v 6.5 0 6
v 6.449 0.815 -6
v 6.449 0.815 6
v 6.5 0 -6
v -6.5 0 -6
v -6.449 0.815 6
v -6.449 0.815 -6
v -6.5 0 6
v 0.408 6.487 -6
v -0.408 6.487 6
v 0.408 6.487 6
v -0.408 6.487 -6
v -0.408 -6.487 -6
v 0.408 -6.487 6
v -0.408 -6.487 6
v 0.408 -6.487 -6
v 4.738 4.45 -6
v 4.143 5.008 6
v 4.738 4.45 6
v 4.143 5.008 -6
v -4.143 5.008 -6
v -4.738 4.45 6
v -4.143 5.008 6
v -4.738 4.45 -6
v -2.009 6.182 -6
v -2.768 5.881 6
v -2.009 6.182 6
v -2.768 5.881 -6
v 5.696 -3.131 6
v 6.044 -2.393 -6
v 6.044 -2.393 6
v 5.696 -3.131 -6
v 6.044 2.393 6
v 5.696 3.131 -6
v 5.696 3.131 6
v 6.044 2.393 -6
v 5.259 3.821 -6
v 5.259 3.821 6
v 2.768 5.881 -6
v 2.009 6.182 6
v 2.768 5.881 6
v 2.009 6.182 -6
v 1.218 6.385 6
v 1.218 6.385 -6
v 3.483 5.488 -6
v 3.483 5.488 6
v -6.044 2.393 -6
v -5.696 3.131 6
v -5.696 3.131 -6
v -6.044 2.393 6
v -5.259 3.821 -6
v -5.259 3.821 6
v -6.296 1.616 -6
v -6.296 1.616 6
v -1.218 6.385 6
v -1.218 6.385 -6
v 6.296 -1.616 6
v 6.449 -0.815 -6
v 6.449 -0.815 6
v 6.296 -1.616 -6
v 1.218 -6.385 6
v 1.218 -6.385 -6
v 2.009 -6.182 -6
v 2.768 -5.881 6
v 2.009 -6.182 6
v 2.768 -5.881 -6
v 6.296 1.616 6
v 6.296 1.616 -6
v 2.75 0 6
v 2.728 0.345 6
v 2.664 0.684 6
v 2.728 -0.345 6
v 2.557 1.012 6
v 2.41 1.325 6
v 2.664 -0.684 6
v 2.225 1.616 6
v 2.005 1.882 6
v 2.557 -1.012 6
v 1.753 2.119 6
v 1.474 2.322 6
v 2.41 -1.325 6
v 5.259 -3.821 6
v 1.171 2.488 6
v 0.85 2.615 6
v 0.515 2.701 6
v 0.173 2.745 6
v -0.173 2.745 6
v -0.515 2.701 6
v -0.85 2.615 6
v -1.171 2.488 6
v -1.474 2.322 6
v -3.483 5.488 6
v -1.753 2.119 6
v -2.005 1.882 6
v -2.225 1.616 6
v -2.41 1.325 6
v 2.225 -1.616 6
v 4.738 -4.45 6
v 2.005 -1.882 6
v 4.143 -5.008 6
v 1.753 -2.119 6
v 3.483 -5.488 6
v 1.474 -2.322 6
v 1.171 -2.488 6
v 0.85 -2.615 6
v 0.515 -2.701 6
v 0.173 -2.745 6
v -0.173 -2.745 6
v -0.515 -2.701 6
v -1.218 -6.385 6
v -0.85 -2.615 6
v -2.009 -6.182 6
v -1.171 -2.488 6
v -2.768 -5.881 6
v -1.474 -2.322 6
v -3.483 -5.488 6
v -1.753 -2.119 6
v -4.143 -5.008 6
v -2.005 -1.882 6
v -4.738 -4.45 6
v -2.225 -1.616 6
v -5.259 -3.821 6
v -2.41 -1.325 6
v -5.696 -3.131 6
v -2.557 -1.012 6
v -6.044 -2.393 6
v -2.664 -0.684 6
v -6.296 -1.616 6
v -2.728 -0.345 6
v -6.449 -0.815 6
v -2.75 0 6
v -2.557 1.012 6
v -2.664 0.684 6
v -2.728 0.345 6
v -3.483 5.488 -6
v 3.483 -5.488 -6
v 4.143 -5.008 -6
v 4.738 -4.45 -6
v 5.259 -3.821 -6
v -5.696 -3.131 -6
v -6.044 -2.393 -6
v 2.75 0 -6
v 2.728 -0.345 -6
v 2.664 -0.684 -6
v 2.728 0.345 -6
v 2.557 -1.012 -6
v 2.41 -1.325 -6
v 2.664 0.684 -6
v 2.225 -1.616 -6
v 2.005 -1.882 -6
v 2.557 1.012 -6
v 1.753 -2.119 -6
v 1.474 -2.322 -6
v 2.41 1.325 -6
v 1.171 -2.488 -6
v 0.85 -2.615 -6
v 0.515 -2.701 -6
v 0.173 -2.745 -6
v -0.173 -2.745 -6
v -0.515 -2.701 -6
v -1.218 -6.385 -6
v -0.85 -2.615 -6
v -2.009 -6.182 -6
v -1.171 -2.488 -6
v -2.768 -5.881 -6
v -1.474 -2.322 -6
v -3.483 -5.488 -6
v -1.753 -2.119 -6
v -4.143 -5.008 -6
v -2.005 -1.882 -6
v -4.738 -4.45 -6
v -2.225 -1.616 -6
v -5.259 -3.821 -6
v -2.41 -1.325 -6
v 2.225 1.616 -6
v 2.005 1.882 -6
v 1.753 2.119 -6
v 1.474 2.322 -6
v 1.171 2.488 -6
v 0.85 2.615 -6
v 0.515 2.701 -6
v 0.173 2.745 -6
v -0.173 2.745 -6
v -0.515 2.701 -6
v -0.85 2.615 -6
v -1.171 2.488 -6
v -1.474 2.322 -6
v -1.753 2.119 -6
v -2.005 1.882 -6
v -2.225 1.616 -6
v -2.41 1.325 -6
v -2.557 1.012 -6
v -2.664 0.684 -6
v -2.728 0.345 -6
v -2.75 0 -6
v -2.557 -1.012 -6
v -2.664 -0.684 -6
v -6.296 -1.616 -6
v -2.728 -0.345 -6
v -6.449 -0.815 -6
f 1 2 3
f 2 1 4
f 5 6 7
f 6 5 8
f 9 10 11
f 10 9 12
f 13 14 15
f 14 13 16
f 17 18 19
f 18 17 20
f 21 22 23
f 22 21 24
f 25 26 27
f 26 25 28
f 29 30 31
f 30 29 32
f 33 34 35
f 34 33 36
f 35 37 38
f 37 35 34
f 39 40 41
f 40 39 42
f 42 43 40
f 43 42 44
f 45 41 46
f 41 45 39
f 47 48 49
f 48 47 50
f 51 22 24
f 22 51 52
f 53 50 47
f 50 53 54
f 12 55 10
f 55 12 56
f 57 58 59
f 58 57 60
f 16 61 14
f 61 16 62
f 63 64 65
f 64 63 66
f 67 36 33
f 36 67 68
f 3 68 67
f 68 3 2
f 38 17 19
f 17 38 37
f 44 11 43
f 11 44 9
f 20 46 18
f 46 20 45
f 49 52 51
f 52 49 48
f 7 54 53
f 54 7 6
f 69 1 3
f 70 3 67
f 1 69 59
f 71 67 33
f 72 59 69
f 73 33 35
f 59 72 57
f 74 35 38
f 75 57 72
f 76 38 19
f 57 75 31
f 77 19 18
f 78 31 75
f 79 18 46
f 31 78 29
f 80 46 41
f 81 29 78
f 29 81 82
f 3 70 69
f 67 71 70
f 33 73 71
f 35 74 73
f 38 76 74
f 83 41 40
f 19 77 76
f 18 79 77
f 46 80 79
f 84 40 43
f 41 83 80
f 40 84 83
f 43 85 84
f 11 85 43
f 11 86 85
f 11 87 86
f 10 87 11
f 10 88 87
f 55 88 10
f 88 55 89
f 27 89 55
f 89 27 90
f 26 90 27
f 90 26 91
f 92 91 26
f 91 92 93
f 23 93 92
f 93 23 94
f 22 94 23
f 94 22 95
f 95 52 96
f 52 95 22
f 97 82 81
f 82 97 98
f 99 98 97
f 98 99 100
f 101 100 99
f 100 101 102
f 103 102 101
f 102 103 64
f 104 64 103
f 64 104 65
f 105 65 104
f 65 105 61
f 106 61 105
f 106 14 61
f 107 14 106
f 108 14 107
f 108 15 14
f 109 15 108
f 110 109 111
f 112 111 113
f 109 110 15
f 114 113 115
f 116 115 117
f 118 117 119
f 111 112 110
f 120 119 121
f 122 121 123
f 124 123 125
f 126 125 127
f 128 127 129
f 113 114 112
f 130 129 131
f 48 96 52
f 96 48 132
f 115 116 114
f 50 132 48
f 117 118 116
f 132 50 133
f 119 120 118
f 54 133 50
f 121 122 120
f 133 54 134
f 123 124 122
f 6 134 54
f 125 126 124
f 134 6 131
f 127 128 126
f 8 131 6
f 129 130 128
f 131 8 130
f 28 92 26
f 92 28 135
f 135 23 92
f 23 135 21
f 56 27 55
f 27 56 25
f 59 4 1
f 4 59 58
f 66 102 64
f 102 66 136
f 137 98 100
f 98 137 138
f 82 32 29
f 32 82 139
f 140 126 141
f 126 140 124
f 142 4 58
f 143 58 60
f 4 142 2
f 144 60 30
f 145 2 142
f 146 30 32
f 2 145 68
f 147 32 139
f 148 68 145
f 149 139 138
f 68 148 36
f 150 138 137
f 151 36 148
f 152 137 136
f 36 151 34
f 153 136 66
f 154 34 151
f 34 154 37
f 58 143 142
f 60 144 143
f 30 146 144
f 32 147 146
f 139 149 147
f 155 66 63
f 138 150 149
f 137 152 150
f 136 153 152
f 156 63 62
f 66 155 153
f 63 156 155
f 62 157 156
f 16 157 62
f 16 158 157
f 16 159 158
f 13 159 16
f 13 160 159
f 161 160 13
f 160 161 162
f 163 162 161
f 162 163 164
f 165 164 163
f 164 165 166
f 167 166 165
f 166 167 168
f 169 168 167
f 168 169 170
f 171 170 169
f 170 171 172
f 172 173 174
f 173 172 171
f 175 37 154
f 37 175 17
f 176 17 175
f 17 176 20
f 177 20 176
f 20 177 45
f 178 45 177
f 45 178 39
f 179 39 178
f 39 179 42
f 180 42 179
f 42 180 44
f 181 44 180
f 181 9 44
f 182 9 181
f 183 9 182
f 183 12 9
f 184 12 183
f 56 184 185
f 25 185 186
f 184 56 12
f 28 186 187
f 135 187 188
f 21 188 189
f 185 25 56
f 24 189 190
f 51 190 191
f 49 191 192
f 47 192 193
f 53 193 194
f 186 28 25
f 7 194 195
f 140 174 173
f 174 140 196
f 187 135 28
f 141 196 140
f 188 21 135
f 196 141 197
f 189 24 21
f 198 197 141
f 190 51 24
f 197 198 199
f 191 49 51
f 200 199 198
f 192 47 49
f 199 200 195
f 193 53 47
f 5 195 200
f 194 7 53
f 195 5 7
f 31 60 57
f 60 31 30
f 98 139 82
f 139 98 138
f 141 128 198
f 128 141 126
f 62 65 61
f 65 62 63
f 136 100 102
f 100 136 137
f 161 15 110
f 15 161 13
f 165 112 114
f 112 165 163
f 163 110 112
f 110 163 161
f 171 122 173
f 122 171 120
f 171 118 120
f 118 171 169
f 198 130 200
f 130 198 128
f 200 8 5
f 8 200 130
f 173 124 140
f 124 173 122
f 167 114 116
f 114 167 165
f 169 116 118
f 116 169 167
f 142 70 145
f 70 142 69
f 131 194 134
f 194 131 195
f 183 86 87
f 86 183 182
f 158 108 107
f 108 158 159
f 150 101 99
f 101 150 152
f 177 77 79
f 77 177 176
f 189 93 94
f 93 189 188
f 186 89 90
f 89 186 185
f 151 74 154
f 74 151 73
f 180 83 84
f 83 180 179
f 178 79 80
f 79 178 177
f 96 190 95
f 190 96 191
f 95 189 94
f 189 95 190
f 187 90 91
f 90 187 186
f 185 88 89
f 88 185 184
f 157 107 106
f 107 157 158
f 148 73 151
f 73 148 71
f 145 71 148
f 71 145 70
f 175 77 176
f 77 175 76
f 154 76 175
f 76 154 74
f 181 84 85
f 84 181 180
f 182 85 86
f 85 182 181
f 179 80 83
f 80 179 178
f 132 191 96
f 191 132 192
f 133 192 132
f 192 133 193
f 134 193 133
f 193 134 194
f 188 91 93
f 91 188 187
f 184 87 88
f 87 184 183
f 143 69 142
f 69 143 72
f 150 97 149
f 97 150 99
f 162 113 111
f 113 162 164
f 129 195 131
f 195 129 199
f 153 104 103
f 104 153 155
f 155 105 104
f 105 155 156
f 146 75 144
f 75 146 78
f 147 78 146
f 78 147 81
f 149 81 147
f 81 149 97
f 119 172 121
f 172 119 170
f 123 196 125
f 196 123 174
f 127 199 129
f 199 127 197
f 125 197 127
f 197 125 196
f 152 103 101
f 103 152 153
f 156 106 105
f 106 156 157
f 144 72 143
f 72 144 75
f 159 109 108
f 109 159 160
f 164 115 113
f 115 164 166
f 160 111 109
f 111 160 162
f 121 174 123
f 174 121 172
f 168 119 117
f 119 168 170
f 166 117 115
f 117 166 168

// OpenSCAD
$fn = 50;


difference() {
	union() {
		translate(v = [0, 0, -6.0000000000]) {
			cylinder(h = 12, r = 6.5000000000);
		}
	}
	union() {
		translate(v = [0, 0, -100.0000000000]) {
			cylinder(h = 200, r = 2.7500000000);
		}
	}
}
